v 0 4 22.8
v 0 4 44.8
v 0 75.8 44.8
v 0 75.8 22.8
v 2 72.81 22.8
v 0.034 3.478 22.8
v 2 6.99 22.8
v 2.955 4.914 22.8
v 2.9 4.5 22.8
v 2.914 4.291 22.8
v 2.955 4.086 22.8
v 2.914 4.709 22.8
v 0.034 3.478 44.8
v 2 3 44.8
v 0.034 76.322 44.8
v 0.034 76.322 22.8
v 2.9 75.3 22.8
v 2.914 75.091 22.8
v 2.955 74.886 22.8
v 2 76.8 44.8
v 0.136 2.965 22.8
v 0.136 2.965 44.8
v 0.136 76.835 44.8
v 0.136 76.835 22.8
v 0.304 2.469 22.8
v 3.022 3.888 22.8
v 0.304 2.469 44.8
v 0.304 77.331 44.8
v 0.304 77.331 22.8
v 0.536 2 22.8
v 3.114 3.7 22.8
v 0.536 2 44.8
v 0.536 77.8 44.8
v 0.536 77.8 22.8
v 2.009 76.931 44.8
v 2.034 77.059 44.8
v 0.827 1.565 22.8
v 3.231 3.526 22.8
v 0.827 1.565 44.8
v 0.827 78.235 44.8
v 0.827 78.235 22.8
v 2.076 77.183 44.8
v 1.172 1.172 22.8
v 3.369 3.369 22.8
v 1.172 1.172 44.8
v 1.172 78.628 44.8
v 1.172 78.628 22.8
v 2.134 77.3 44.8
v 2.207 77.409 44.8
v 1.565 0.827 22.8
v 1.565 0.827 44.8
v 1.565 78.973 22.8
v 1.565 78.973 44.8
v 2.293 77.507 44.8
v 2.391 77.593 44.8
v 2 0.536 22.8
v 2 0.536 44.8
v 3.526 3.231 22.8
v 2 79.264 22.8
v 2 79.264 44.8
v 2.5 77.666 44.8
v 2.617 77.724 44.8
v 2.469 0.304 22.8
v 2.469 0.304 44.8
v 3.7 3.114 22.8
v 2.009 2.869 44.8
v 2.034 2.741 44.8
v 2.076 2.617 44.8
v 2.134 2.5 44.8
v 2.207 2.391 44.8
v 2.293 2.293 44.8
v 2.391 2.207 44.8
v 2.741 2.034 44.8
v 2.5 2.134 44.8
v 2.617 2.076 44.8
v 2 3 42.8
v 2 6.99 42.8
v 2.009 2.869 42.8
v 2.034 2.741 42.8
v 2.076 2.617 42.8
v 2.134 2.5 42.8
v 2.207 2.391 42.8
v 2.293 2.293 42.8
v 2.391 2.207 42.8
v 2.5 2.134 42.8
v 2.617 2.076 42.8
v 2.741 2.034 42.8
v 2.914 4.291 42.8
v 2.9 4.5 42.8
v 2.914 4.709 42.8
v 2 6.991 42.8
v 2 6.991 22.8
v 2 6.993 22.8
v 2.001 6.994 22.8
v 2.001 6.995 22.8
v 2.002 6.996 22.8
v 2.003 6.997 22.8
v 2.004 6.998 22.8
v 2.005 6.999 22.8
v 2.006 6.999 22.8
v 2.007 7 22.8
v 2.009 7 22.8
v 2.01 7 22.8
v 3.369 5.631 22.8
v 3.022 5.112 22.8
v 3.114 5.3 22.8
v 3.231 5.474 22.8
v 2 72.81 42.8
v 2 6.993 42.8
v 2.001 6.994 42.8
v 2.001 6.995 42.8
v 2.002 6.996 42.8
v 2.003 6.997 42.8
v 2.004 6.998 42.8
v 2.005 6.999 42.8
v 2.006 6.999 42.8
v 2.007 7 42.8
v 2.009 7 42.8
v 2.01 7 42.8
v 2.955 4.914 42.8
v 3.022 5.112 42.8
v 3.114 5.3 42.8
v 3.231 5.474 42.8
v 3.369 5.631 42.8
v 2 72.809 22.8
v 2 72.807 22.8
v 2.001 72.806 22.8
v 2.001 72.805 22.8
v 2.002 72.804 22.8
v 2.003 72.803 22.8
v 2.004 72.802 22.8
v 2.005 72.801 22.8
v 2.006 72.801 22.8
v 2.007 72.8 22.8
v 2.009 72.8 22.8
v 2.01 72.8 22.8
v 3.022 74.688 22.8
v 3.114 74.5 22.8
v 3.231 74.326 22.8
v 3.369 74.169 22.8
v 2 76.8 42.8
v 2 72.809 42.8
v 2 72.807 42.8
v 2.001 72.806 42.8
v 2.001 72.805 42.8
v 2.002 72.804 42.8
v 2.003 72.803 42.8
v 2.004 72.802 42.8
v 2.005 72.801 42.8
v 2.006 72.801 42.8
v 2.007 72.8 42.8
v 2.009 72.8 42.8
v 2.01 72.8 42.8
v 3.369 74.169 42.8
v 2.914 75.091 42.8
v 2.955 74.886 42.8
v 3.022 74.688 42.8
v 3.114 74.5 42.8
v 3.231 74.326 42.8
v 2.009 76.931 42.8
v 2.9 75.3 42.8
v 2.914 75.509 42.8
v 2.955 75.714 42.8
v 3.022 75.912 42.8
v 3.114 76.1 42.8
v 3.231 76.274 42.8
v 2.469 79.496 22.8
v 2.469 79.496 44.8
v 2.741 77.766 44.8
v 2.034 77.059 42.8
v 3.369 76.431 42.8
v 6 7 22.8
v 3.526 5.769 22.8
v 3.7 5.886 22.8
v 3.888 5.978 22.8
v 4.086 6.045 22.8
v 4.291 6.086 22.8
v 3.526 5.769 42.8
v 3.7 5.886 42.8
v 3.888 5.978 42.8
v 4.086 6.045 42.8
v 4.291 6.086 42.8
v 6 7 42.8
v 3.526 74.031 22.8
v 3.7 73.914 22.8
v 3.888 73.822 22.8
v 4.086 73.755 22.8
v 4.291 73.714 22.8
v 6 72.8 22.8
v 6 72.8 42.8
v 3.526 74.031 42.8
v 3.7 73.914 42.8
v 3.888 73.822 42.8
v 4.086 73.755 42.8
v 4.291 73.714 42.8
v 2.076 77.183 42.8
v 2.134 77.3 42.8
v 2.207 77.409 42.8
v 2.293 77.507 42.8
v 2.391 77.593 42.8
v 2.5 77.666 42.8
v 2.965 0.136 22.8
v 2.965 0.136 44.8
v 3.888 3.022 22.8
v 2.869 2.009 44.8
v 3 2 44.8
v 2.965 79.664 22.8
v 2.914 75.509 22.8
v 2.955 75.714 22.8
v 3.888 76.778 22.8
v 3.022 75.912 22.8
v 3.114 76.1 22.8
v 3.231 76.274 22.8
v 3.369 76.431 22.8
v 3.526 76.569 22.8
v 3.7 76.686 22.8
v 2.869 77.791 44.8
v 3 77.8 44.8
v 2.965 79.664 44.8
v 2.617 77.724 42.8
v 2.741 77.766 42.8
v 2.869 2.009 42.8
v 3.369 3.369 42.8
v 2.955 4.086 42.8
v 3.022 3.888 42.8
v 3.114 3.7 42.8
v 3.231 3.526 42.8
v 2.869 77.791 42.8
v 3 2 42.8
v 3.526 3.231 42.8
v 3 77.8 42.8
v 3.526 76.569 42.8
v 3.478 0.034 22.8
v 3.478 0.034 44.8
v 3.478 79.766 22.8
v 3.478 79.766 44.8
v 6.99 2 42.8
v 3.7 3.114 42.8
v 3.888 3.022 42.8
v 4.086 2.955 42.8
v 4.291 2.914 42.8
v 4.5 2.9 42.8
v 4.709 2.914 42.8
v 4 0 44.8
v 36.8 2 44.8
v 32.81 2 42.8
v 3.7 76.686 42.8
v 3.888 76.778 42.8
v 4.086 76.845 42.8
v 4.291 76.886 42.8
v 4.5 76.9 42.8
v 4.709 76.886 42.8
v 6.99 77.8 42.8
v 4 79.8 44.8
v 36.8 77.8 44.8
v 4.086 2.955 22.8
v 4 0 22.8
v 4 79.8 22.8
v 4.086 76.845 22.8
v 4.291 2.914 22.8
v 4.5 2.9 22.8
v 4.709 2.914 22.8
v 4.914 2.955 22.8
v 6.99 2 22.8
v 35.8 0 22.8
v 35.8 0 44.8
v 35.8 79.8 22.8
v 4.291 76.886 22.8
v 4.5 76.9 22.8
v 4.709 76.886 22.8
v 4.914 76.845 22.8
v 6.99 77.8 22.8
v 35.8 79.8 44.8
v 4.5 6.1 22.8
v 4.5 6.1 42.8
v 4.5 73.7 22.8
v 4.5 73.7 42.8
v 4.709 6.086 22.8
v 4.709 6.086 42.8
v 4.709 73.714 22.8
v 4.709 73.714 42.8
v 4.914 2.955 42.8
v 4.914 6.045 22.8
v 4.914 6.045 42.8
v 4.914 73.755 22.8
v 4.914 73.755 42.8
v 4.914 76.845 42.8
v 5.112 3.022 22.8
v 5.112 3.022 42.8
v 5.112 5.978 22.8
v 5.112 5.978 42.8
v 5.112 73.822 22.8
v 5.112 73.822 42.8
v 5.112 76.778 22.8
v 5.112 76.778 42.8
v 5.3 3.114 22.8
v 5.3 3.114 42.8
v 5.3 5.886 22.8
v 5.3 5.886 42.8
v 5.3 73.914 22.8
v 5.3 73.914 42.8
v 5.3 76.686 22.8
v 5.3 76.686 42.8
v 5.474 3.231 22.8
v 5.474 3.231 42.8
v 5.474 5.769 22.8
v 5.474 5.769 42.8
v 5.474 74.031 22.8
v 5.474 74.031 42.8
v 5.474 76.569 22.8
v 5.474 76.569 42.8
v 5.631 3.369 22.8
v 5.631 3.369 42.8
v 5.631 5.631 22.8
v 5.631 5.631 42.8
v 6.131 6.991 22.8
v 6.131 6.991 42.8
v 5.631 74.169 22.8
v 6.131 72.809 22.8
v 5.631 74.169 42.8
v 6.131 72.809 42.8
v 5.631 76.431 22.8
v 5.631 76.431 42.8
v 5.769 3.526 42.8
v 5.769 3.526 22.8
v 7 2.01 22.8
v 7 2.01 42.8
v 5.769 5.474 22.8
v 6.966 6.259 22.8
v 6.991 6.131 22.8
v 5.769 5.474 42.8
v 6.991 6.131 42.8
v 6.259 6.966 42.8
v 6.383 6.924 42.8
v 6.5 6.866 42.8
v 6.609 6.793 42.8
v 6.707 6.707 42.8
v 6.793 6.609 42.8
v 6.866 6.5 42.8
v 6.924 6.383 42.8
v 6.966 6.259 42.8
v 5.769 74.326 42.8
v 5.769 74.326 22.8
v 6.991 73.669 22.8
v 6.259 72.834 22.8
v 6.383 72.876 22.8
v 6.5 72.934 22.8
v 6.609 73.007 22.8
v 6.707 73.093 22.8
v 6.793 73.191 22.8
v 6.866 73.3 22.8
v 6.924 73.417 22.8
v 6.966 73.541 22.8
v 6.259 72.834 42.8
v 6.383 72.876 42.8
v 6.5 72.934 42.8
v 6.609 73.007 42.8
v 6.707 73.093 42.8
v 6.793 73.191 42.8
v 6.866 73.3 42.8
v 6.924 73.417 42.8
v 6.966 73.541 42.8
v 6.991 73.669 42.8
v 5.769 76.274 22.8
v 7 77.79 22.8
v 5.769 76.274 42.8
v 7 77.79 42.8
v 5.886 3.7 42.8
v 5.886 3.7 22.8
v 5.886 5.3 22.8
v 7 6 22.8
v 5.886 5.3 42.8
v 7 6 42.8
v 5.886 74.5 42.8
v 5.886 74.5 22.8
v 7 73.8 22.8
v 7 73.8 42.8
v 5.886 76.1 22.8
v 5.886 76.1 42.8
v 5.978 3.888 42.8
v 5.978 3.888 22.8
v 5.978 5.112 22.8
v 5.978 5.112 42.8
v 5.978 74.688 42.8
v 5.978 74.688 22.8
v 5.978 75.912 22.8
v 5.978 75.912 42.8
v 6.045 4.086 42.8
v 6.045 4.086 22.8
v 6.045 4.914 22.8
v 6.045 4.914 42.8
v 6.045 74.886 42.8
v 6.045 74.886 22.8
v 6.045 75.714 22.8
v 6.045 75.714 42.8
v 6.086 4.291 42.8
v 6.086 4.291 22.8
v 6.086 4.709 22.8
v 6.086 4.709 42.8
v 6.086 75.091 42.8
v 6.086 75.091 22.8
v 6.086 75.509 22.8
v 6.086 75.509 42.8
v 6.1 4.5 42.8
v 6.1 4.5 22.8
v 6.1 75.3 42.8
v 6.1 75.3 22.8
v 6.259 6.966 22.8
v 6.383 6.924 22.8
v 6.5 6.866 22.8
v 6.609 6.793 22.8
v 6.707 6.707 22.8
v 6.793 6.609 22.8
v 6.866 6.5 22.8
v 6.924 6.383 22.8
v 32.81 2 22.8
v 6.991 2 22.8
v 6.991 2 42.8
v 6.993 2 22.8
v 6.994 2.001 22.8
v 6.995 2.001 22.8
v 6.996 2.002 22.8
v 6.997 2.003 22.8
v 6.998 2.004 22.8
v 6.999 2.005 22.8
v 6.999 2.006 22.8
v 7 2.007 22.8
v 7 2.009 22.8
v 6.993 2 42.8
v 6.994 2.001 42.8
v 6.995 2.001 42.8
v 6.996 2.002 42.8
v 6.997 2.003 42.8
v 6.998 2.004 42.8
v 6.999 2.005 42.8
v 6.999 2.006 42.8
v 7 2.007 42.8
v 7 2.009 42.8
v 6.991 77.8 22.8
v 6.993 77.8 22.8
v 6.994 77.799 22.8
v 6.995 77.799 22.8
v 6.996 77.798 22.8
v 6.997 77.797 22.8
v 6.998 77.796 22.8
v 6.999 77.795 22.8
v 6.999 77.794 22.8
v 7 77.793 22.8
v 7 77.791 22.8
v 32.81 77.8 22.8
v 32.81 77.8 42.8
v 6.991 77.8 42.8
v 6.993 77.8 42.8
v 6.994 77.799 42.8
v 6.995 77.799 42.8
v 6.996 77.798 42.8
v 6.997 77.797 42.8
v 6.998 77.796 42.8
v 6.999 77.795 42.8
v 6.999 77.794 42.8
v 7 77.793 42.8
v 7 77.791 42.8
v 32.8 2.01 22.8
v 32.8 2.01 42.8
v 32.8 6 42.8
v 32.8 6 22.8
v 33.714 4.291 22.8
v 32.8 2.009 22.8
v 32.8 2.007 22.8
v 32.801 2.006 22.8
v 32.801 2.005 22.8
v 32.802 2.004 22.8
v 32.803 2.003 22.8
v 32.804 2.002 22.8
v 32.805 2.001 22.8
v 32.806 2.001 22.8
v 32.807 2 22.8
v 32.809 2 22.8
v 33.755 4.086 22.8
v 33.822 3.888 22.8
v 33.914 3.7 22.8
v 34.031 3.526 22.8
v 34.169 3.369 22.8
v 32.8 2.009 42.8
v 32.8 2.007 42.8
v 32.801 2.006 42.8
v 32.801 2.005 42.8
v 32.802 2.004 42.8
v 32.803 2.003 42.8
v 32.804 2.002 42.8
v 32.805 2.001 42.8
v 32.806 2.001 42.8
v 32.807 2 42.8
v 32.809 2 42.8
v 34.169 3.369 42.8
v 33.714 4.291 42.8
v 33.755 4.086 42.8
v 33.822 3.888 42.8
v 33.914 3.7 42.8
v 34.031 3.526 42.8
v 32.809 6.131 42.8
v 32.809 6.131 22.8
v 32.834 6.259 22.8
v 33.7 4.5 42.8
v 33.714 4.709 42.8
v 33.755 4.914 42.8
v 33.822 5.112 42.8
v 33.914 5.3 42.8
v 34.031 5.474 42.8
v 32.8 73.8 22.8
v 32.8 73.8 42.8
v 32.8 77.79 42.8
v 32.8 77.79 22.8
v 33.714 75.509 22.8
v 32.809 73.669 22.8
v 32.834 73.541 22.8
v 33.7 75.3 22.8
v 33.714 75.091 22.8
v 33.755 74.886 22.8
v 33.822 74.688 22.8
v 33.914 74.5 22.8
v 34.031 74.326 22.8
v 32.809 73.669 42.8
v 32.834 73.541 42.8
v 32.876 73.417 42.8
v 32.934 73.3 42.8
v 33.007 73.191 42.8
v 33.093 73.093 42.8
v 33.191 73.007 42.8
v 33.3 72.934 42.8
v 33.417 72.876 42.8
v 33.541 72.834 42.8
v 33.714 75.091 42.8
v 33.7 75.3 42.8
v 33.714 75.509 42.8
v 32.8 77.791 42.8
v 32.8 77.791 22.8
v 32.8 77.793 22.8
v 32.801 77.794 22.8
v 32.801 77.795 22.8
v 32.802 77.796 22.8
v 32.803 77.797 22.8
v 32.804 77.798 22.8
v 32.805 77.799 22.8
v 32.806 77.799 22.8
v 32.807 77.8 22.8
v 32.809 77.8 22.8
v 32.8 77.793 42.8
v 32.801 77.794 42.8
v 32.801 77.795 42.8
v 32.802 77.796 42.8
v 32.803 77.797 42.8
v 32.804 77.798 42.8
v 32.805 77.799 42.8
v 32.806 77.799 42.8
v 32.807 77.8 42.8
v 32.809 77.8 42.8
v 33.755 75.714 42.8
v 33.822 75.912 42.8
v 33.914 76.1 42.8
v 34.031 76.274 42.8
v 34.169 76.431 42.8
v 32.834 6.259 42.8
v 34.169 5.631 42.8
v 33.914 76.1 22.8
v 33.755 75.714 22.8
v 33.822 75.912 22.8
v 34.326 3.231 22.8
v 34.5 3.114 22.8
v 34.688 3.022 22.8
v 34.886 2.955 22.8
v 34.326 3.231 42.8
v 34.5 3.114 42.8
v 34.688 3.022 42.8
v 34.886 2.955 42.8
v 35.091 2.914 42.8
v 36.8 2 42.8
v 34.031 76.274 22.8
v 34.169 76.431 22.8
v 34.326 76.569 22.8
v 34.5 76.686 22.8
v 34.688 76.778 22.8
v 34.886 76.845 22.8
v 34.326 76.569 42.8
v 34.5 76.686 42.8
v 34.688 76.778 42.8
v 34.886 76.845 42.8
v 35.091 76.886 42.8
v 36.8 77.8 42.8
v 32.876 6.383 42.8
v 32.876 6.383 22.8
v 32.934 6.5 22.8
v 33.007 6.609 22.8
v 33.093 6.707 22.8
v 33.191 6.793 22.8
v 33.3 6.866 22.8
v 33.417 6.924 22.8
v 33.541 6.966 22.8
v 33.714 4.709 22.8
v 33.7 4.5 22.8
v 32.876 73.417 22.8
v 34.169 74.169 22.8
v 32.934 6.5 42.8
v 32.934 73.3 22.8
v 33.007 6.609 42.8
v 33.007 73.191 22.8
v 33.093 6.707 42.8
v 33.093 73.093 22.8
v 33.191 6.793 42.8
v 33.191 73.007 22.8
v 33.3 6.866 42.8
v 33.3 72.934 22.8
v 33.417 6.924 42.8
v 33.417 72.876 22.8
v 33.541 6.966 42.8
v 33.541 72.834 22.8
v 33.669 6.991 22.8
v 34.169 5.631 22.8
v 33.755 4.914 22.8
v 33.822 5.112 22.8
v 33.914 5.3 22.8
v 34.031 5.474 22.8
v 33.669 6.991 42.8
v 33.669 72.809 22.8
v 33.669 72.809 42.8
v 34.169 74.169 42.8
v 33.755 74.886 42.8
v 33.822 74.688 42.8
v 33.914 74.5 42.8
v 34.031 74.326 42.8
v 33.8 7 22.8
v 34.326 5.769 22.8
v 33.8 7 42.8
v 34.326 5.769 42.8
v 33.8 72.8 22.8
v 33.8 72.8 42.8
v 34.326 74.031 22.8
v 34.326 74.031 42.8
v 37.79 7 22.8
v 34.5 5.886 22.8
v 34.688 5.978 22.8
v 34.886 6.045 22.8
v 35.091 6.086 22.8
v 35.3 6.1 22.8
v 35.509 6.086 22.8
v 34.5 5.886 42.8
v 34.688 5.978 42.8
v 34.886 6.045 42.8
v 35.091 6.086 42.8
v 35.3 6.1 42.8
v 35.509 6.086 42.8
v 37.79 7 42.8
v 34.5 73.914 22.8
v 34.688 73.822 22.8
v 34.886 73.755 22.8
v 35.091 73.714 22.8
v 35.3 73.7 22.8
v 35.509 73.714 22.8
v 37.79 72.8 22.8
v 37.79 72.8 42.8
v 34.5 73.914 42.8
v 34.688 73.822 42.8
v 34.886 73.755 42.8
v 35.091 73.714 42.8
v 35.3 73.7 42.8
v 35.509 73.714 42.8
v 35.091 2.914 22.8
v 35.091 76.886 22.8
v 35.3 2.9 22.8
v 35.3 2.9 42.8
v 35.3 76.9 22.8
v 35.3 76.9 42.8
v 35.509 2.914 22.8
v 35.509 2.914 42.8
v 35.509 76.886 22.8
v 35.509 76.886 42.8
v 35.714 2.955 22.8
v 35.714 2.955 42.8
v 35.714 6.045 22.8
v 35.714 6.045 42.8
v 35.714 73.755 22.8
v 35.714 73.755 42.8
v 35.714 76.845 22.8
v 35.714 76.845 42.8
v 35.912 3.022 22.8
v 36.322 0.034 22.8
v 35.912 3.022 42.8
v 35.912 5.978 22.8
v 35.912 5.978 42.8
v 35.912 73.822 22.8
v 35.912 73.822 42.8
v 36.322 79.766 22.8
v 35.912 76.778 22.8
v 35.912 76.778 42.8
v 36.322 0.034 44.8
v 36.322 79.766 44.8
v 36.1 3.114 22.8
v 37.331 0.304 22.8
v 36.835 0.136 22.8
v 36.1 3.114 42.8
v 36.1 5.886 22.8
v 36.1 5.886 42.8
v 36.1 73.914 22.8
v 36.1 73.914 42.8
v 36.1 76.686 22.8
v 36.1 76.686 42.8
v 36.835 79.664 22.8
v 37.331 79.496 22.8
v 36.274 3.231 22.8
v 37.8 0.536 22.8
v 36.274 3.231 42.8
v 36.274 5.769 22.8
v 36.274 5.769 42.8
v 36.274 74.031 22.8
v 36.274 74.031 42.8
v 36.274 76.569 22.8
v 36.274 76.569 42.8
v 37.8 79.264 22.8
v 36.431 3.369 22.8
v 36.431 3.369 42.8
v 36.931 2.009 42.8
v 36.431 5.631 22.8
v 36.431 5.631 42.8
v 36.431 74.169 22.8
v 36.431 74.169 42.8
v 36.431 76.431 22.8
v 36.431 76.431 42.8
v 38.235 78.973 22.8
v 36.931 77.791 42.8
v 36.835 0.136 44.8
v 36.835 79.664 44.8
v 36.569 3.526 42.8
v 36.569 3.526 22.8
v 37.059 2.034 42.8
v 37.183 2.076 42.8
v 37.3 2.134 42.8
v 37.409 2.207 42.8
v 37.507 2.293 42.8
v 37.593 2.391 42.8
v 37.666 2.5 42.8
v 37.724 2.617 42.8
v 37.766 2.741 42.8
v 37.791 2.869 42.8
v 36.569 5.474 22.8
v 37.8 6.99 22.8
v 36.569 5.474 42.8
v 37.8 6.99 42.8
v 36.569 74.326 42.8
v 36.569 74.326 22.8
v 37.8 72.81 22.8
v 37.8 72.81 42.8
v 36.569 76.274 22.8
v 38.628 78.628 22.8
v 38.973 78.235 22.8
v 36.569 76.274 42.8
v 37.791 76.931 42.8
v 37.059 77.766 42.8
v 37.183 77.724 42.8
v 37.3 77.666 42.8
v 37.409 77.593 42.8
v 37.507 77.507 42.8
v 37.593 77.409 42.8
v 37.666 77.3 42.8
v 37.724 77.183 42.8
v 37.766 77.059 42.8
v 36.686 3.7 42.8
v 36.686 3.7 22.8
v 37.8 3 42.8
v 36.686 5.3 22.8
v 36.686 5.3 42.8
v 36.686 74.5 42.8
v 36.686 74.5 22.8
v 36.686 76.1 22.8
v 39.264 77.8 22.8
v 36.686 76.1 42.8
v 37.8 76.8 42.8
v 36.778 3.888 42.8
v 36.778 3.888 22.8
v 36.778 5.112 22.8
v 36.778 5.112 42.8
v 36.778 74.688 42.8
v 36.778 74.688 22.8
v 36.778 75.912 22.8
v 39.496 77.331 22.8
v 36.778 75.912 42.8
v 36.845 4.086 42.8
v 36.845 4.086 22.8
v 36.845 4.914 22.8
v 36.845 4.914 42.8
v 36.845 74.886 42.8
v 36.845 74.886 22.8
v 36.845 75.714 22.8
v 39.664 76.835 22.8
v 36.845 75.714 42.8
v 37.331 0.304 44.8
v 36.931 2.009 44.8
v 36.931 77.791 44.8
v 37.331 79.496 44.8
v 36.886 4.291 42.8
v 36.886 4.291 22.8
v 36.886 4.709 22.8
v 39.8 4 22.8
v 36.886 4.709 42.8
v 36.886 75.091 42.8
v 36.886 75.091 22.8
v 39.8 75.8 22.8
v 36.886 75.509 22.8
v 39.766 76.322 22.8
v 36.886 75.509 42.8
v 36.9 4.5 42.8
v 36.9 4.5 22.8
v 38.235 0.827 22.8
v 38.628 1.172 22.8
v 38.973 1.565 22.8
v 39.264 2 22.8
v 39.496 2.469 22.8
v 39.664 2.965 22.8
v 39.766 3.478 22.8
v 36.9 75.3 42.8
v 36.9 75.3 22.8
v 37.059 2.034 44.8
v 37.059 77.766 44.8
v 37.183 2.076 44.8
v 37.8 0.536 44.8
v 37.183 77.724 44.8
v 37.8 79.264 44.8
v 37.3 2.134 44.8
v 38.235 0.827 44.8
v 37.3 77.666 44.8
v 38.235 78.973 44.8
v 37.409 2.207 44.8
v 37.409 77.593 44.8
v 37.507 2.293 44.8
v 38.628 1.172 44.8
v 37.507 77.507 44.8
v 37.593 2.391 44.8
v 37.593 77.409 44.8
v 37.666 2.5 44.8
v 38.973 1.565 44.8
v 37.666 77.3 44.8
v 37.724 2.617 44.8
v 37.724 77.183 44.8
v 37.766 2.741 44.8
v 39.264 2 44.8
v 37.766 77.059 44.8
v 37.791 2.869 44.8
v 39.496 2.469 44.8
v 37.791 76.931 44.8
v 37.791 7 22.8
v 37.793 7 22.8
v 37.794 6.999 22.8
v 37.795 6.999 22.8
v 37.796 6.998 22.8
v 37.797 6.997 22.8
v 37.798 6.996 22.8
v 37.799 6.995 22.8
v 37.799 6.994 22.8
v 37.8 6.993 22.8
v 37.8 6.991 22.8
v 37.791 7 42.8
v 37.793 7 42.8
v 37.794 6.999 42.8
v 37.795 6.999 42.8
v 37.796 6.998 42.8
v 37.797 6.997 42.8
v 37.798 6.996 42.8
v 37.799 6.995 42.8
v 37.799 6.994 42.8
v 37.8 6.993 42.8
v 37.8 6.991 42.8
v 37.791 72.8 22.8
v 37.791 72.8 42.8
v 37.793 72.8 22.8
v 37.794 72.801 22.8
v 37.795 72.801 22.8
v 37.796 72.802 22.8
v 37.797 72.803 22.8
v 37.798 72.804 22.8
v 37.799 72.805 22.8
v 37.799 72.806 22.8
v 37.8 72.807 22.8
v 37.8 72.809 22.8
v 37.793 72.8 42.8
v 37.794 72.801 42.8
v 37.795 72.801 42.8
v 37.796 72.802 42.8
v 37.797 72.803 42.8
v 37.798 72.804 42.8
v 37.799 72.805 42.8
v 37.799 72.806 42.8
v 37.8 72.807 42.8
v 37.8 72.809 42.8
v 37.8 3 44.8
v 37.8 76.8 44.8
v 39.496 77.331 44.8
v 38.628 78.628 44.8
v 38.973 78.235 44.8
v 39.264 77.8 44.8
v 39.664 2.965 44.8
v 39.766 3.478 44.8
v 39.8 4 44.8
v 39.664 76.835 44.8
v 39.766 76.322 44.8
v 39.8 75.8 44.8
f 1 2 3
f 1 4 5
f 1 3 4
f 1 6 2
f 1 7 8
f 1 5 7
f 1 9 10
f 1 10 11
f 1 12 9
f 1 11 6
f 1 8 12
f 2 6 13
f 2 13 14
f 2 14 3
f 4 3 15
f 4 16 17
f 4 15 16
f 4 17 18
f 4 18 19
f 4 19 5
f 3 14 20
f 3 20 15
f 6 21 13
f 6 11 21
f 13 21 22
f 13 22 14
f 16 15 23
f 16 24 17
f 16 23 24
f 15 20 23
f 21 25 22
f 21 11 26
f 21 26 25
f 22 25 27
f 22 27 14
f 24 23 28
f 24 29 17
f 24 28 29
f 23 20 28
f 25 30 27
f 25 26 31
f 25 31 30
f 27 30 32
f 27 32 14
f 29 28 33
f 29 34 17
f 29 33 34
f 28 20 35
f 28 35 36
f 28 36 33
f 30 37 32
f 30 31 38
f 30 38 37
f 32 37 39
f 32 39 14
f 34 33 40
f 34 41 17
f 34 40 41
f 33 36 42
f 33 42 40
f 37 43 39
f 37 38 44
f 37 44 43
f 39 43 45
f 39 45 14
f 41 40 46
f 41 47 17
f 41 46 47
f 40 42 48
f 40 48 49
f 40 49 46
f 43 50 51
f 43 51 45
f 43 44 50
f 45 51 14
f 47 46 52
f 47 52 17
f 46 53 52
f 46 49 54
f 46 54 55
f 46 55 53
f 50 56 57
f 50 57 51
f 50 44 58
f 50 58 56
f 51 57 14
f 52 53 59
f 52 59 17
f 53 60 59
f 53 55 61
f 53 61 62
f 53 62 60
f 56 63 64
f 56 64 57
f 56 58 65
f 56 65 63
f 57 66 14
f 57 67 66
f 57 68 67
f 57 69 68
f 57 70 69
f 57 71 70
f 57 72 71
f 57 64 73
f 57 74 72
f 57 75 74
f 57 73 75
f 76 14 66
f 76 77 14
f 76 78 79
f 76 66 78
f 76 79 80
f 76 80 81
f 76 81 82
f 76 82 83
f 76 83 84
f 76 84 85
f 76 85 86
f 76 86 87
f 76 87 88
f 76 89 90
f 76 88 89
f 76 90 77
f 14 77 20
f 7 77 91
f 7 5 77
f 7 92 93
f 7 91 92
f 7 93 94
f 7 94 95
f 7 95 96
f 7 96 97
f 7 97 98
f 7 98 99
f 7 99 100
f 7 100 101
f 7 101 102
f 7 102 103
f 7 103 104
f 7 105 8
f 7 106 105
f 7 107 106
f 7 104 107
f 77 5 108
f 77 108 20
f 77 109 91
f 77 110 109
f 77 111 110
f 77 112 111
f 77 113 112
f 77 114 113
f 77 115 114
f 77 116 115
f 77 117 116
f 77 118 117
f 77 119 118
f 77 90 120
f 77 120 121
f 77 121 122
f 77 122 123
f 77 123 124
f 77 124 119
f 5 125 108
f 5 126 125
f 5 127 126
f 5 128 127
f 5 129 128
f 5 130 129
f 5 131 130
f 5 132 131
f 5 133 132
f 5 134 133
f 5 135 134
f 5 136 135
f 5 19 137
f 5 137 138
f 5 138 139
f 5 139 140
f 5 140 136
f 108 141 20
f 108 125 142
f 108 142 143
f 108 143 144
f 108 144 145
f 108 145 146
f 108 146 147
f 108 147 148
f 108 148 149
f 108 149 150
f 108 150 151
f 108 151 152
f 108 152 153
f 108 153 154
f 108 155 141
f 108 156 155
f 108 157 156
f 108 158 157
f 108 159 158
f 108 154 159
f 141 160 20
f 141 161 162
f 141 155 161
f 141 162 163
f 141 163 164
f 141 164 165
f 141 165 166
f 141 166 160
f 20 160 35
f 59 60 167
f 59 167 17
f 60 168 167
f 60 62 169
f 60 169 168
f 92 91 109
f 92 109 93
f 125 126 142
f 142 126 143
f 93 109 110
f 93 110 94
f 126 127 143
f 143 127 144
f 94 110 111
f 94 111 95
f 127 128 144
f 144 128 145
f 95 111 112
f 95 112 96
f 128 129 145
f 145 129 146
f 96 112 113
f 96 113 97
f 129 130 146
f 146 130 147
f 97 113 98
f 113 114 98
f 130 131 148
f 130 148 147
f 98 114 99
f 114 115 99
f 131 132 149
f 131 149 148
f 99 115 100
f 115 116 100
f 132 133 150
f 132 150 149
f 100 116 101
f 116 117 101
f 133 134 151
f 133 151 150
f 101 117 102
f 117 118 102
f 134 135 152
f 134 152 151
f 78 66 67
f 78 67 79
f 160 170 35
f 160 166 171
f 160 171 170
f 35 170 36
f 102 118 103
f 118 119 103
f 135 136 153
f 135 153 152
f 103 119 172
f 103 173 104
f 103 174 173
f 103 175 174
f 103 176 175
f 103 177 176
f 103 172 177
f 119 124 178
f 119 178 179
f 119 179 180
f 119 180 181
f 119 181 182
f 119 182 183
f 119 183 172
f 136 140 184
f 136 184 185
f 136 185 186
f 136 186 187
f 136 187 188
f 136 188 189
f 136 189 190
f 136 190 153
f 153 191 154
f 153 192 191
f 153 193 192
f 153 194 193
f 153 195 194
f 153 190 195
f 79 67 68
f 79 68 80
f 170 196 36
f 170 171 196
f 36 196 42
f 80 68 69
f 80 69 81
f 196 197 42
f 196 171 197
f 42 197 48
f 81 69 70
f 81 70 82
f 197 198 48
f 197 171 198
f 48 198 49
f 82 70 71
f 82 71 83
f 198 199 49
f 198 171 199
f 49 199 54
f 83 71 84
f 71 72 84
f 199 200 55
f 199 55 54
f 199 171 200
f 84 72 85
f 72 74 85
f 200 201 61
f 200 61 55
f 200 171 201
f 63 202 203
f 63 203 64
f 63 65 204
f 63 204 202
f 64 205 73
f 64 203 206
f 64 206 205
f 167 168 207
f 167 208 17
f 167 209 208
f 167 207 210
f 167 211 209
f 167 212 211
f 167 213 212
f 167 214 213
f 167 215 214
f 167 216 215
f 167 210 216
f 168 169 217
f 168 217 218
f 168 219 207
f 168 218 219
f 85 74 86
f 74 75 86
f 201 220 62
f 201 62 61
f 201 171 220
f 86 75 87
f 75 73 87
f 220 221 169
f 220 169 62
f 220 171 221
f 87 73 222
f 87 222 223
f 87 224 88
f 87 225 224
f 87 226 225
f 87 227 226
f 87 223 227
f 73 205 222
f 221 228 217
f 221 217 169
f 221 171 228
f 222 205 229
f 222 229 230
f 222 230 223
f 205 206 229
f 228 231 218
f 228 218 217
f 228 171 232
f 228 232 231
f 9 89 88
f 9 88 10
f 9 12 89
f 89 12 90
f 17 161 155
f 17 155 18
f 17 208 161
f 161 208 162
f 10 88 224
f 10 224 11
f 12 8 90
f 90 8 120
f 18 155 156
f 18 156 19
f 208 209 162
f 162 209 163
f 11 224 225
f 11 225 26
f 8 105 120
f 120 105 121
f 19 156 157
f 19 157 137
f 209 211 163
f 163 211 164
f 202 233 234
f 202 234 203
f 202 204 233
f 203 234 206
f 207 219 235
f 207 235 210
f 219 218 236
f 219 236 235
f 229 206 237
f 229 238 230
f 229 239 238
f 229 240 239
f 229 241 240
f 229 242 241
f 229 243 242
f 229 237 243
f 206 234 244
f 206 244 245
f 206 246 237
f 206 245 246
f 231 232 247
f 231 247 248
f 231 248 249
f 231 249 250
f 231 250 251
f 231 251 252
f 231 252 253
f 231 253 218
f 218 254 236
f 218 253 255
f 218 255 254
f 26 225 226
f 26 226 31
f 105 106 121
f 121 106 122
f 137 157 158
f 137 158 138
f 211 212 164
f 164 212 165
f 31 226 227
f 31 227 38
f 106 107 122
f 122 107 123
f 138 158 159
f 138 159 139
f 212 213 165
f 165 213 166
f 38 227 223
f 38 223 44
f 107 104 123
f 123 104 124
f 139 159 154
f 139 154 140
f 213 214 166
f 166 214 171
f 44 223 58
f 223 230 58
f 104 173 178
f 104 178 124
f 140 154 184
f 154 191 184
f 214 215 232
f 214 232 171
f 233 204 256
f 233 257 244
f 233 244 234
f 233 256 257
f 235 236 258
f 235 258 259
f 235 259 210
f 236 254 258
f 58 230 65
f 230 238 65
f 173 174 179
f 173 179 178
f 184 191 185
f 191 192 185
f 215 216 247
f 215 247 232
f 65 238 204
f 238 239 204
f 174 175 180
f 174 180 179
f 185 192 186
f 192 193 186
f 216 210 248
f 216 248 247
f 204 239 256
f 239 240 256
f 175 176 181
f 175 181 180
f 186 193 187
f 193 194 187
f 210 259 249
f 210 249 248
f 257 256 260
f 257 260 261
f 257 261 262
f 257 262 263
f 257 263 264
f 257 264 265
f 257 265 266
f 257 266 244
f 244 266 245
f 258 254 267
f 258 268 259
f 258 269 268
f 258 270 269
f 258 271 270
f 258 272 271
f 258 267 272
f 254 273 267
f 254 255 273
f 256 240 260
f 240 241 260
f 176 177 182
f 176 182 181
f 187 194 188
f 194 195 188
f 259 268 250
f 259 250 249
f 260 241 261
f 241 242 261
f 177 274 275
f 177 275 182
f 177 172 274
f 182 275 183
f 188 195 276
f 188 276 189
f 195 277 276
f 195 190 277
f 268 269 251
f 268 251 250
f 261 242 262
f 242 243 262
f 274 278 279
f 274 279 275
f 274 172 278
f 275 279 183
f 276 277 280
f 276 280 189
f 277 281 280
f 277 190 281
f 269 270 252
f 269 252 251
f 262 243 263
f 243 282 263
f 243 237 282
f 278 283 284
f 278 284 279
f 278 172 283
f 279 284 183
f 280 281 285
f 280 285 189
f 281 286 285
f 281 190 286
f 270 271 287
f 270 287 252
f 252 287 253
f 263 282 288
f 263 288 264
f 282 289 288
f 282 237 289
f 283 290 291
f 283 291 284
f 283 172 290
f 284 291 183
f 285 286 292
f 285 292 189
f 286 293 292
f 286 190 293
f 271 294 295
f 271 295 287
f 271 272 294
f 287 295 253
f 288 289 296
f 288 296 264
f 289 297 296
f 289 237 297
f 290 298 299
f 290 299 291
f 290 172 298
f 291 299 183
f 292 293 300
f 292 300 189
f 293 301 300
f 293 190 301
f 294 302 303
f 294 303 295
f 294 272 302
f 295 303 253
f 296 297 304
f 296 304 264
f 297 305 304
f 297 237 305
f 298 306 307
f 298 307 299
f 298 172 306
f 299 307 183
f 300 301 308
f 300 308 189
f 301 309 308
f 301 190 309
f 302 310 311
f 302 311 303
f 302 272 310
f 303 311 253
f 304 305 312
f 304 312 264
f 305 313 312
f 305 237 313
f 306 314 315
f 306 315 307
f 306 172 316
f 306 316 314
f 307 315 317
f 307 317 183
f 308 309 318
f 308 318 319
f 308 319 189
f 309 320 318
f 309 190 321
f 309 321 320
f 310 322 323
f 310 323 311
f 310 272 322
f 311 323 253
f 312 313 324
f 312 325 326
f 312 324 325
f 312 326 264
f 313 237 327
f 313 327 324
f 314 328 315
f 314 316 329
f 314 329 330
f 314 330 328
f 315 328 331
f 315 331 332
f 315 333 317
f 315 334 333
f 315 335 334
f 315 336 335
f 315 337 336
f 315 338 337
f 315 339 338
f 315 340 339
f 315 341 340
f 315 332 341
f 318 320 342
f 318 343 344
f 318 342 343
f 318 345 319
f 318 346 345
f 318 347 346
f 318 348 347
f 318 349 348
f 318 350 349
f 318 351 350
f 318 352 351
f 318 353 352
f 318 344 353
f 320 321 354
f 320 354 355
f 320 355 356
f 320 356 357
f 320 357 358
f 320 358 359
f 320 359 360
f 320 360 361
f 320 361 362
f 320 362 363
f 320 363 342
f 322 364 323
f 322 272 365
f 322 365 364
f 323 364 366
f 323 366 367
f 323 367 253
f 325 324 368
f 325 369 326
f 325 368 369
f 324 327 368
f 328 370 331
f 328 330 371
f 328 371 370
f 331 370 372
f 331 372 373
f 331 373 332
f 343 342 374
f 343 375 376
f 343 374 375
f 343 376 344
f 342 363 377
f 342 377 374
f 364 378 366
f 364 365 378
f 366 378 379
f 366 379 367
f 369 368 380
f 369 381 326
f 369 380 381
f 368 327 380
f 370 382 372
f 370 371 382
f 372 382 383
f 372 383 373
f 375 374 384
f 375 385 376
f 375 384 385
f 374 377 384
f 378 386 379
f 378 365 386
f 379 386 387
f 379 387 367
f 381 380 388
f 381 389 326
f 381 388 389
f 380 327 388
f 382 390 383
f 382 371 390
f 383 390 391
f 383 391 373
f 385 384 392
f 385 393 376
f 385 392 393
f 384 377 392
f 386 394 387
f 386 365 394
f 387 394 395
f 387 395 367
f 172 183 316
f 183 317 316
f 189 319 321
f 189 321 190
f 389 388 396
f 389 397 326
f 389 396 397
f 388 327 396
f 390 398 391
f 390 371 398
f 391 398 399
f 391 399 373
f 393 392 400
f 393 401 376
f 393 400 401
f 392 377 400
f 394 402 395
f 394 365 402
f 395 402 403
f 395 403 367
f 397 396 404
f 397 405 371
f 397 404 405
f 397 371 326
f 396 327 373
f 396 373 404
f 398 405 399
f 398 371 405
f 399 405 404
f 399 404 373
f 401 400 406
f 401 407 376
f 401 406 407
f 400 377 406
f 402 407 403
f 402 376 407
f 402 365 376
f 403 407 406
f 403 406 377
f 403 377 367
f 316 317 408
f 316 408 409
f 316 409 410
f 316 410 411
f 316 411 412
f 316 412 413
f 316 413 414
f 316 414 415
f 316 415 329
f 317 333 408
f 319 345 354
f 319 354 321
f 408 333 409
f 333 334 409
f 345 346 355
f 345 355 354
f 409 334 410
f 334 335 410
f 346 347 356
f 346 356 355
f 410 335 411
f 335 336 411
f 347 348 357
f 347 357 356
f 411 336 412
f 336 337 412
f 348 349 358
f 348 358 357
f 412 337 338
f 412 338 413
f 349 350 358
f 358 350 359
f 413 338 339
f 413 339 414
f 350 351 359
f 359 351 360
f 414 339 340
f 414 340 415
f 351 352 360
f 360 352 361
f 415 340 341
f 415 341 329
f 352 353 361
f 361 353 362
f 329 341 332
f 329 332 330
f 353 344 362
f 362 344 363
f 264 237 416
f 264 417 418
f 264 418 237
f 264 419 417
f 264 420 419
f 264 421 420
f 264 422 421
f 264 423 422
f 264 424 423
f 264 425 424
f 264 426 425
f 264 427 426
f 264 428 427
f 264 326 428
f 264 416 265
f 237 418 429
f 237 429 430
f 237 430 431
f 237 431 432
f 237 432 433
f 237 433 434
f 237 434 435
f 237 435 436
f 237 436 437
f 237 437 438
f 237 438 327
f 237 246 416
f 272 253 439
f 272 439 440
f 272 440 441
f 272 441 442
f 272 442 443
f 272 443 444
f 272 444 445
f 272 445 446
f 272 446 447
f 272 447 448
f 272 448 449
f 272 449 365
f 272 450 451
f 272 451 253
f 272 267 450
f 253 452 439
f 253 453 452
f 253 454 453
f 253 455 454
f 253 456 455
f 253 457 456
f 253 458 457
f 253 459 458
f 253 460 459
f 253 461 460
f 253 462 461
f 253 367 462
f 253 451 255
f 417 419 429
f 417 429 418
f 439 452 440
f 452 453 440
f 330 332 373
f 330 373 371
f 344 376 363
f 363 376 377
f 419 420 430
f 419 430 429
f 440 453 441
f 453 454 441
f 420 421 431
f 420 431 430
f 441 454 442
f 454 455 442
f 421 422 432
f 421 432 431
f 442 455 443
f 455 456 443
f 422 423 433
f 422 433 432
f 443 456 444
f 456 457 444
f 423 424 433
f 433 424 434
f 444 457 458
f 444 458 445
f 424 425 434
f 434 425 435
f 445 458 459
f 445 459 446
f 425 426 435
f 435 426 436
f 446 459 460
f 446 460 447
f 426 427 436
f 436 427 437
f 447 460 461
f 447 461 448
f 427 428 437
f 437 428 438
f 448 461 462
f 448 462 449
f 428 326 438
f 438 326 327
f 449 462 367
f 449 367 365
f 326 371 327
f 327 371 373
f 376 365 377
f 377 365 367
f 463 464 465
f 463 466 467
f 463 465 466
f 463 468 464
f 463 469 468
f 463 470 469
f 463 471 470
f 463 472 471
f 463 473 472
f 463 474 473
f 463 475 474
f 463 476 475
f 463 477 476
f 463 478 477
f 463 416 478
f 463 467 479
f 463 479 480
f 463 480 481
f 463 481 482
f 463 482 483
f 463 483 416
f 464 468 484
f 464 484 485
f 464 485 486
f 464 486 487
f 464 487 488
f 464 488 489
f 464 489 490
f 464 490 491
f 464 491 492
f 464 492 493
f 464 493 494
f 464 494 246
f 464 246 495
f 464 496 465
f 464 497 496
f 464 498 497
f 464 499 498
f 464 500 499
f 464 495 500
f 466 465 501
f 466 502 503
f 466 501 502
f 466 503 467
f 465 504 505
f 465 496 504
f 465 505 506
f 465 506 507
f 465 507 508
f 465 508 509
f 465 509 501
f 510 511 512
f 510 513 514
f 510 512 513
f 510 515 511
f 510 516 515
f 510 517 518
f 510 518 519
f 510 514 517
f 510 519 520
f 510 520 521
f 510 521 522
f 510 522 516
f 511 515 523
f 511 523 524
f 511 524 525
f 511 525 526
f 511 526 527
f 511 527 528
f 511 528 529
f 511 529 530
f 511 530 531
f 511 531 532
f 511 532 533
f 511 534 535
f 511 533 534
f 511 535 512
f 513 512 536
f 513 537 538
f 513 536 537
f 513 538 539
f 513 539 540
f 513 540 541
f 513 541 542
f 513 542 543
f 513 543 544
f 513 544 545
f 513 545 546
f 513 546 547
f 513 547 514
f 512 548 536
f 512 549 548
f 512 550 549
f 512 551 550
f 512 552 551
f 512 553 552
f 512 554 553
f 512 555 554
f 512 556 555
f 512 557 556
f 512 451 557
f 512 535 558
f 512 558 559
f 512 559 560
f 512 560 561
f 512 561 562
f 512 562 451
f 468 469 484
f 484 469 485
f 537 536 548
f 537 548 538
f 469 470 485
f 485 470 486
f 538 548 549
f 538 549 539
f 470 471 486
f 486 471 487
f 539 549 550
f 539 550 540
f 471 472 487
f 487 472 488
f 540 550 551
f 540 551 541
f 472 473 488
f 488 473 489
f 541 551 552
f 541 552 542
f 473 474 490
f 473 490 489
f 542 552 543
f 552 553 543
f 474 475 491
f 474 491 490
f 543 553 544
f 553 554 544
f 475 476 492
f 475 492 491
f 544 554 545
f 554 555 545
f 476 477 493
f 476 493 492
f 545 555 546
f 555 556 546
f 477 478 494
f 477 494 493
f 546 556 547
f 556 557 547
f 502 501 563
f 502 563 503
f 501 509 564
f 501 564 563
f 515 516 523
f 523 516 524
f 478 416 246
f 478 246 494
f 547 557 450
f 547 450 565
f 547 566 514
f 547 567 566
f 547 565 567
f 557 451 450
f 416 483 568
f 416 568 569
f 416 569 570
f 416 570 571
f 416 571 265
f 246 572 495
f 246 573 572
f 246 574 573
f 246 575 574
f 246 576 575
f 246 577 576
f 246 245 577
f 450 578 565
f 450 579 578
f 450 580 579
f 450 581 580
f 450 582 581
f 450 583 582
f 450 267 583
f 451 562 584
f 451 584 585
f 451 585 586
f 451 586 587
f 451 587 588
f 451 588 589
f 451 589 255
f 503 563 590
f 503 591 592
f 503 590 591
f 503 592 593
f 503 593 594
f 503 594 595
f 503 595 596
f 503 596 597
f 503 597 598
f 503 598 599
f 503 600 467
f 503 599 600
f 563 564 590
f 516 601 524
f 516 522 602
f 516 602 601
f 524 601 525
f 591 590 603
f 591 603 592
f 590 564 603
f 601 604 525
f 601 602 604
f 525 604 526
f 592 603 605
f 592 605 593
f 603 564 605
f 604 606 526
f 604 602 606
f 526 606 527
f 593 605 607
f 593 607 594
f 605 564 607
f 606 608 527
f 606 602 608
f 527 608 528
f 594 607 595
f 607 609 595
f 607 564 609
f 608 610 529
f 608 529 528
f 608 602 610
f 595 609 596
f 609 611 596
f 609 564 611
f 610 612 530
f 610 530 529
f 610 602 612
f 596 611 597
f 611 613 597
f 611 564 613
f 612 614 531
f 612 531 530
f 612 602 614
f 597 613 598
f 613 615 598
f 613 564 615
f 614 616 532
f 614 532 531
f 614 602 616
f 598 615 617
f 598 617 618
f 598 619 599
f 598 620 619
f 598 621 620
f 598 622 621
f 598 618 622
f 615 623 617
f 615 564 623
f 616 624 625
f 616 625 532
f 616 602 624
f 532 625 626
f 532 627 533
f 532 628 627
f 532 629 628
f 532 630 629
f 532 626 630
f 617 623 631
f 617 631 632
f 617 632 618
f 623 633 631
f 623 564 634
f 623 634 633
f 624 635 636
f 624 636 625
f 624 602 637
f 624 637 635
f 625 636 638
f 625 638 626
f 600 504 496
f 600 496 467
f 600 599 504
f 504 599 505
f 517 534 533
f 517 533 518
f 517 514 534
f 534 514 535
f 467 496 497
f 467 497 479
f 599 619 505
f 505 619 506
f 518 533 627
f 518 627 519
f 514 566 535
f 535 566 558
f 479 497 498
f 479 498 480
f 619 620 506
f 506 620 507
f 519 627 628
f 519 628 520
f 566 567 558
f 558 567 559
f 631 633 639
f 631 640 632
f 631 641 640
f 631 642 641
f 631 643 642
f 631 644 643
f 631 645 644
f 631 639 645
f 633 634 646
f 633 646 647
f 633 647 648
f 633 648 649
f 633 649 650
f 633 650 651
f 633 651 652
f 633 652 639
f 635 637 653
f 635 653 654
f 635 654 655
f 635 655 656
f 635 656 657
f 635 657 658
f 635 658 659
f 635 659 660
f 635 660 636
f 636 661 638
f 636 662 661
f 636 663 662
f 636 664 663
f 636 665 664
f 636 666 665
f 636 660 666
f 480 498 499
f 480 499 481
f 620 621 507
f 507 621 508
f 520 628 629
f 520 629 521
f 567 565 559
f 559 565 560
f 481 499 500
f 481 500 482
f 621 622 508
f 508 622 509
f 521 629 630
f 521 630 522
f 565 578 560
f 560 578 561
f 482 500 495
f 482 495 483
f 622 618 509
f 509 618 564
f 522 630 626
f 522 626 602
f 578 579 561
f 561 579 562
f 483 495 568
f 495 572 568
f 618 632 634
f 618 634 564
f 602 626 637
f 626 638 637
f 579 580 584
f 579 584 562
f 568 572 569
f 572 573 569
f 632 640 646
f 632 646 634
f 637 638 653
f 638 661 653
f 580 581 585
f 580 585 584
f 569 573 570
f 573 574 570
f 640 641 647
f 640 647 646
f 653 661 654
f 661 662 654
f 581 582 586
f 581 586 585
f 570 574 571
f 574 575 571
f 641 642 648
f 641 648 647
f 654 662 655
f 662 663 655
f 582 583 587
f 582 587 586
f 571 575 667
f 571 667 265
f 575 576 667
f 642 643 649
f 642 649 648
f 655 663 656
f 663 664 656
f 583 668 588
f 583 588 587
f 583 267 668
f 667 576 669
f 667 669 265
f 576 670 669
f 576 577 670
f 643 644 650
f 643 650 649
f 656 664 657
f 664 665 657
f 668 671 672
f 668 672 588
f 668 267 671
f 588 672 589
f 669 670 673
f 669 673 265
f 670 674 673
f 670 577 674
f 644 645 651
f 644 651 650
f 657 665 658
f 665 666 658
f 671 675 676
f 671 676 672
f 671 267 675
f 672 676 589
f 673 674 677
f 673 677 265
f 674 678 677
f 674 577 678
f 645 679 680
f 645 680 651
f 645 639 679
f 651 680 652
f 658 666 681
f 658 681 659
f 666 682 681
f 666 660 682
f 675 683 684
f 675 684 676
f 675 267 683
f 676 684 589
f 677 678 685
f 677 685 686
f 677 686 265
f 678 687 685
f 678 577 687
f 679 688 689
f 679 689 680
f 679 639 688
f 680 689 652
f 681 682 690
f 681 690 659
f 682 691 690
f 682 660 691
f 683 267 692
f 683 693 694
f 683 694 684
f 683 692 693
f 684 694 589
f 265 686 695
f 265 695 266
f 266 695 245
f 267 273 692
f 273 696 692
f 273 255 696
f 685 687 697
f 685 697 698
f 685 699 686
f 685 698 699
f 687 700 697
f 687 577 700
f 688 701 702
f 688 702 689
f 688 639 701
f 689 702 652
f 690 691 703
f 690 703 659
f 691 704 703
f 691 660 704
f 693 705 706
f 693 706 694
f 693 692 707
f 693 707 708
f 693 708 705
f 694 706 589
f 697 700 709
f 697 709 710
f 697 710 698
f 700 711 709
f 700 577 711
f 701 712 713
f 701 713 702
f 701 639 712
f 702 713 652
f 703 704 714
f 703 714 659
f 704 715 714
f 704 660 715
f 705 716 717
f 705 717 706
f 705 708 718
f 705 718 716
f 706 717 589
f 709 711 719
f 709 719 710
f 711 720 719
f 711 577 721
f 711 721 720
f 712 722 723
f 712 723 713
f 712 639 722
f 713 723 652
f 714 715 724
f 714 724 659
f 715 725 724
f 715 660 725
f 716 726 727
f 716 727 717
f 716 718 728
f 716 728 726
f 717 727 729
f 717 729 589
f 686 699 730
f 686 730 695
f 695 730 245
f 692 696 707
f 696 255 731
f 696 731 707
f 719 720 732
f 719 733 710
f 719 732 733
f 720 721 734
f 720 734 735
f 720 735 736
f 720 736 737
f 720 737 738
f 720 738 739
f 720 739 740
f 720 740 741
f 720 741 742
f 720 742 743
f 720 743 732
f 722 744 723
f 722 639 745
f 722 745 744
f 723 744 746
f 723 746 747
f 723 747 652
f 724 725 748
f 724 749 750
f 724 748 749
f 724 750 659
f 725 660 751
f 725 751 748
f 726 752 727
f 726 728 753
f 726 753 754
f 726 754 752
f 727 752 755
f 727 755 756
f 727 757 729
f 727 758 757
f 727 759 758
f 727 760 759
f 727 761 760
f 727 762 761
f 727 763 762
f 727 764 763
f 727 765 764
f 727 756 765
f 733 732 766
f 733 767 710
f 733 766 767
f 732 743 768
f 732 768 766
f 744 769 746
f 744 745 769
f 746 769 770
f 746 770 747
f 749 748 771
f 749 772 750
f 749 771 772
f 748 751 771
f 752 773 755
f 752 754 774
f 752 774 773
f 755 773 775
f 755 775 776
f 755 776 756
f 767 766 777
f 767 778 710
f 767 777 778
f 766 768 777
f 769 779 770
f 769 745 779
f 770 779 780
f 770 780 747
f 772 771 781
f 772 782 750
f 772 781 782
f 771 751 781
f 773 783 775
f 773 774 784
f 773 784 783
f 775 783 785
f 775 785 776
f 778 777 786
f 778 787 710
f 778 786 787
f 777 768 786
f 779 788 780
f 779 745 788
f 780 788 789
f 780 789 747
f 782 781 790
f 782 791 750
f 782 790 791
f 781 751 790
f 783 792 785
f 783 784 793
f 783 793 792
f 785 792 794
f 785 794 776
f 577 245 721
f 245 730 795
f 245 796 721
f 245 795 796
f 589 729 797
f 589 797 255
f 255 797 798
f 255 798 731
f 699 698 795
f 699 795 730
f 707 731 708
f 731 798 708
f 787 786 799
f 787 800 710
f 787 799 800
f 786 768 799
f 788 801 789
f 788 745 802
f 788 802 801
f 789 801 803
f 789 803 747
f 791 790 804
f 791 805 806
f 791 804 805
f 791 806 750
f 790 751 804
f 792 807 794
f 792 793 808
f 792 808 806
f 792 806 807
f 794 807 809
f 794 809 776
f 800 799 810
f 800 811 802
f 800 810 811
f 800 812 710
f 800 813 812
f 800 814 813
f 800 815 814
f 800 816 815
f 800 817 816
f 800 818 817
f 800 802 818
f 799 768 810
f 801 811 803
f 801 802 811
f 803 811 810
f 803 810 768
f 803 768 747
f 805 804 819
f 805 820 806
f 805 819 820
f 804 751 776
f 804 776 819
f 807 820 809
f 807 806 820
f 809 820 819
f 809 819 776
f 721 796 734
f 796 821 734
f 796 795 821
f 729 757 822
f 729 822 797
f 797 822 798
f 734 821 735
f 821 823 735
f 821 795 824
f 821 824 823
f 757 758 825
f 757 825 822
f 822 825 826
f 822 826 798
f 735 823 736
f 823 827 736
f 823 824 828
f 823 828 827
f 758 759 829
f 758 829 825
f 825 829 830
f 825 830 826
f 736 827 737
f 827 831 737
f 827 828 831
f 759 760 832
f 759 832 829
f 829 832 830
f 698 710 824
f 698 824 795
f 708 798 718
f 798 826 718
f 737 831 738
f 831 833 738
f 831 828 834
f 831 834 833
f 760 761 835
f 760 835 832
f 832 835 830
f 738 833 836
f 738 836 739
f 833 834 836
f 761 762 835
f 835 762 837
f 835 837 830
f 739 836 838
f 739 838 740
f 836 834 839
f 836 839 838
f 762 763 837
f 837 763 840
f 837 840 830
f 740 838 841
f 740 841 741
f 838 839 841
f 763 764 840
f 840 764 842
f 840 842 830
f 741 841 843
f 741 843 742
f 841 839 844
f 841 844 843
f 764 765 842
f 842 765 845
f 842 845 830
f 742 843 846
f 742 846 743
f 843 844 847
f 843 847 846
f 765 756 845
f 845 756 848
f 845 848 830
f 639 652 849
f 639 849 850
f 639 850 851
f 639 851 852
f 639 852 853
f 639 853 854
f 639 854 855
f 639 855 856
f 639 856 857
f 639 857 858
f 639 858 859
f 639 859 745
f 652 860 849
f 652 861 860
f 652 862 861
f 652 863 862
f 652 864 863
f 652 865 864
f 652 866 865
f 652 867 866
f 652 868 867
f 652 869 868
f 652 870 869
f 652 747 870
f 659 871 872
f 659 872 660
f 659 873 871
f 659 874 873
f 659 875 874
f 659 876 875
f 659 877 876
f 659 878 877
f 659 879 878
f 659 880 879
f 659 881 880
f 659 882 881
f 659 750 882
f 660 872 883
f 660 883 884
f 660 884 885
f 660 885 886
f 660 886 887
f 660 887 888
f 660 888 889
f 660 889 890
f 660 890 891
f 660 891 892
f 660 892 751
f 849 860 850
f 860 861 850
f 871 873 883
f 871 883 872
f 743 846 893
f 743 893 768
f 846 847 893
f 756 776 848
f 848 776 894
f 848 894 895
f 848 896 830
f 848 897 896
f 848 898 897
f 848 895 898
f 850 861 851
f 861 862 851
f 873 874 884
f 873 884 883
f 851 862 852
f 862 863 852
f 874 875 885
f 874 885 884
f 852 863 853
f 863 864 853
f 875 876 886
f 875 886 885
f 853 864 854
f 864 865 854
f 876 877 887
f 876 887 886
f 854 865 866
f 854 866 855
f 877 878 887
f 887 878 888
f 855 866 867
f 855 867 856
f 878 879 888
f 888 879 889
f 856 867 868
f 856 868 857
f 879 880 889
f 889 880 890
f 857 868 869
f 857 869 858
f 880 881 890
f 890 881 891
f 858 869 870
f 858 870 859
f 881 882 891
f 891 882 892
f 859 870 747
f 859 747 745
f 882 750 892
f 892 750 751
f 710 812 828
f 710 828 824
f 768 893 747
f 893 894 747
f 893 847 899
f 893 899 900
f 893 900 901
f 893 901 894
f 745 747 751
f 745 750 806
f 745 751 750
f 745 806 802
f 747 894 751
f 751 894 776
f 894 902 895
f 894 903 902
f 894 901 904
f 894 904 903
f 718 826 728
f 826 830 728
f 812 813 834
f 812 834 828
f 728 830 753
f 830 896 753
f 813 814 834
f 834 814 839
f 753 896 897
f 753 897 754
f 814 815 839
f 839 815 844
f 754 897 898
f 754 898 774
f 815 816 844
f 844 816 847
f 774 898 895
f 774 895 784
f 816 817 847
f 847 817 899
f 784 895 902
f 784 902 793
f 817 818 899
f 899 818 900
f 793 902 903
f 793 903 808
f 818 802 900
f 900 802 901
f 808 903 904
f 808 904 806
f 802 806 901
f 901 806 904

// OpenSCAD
// Dilder Top Cover v3 — open border frame with rounded inner corners for flush plate seating
//
// No dome, no floor — just the perimeter wall ring + 4 corner pillar posts.
// Solid border all around (no wire notch).
// Inner corners and countersink pocket are rounded to match the windowed plate's corner radius,
// allowing it to slide in flush at the pillar junctions.
//
// Export:
//   openscad -o top-cover-v3.3mf top-cover-v3.scad

$fn = 48;

// ---- Board (Olimex ESP32-S3-DevKit-Lipo) ----
board_len      = 56;
board_wid      = 28;
antenna_proj   = 6;

// ---- Waveshare 2.13" display ----
disp_len       = 65;
disp_wid       = 30;
disp_thk       = 5;

// ---- 1000 mAh battery ----
bat_len        = 52;
bat_wid        = 35;

// ---- Enclosure geometry ----
wall_thk       = 2;
plate_thk      = 2;
pillar         = 5;
slop           = 0.4;
bat_chamber_h  = 6;
disp_clear     = 1;
board_thk      = 1.6;
wroom_h        = 3.2;
top_gap        = 20;       // +15mm height

screw_clr      = 3.2;

// ---- Rounding ----
case_corner_r  = 4;
plate_corner_r = 1;       // must match windowed plate's corner radius

// ---- Z layout ----
z_base_top     = plate_thk;
z_mid_bot      = z_base_top + bat_chamber_h;
z_mid_top      = z_mid_bot + plate_thk;
z_board_bot    = z_mid_top;
z_board_top    = z_board_bot + board_thk;
z_wroom_top    = z_board_top + wroom_h;
z_disp_bot     = z_wroom_top + disp_clear;
z_disp_top     = z_disp_bot + disp_thk;
base_wall_top  = z_disp_top + plate_thk;
z_cover_bot    = base_wall_top;
cover_h        = plate_thk + top_gap;

// ---- XY layout ----
inner_wid      = max(board_wid, disp_wid, bat_wid) + 2 * slop;
inner_len      = max(board_len + antenna_proj, disp_len + 2 * pillar, bat_len) + 2 * slop;
outer_wid      = inner_wid + 2 * wall_thk;
outer_len      = inner_len + 2 * wall_thk;

pillar_xy = [
    [wall_thk,                             wall_thk                            ],
    [outer_wid - wall_thk - pillar,        wall_thk                            ],
    [wall_thk,                             outer_len - wall_thk - pillar       ],
    [outer_wid - wall_thk - pillar,        outer_len - wall_thk - pillar       ],
];


// ============== SHARED ==============

module rounded_v_box(w, l, h, r, fn = 48) {
    hull() {
        for (x = [r, w - r])
            for (y = [r, l - r])
                translate([x, y, 0])
                    cylinder(r = r, h = h, $fn = fn);
    }
}

// Pillar with only one corner rounded (the exposed inner corner).
// round_x/round_y: 0=near edge, 1=far edge — selects which corner gets the radius.
module pillar_one_round(w, l, h, r, round_x, round_y) {
    tiny = 0.01;
    hull() {
        for (ix = [0, 1])
            for (iy = [0, 1]) {
                cr = (ix == round_x && iy == round_y) ? r : tiny;
                translate([cr + ix * (w - 2*cr), cr + iy * (l - 2*cr), 0])
                    cylinder(r = cr, h = h, $fn = 48);
            }
    }
}


// ============== TOP COVER v3 ==============

module top_cover() {
    translate([0, 0, z_cover_bot])
    difference() {
        union() {
            // Outer wall ring — rounded outer edges, rounded inner edges
            difference() {
                rounded_v_box(outer_wid, outer_len, cover_h, case_corner_r);
                translate([wall_thk, wall_thk, -0.1])
                    rounded_v_box(inner_wid, inner_len, cover_h + 0.2, plate_corner_r);
            }

            // Pillar posts — only the exposed inner corner is rounded
            for (p = pillar_xy) {
                rx = (p[0] < outer_wid/2) ? 1 : 0;
                ry = (p[1] < outer_len/2) ? 1 : 0;
                translate([p[0], p[1], 0])
                    pillar_one_round(pillar, pillar, cover_h, plate_corner_r, rx, ry);
            }
        }

        // Countersink — single rounded pocket matching plate footprint
        // Cuts into pillar tops with rounded inner corners so plate seats flush
        translate([wall_thk, wall_thk, cover_h - plate_thk])
            rounded_v_box(inner_wid, inner_len, plate_thk + 0.1, plate_corner_r);

        // Screw clearance holes through pillars
        for (p = pillar_xy) {
            cx = p[0] + pillar/2;
            cy = p[1] + pillar/2;
            translate([cx, cy, -0.1])
                cylinder(h = cover_h + 0.2, d = screw_clr);
        }
    }
}

top_cover();
